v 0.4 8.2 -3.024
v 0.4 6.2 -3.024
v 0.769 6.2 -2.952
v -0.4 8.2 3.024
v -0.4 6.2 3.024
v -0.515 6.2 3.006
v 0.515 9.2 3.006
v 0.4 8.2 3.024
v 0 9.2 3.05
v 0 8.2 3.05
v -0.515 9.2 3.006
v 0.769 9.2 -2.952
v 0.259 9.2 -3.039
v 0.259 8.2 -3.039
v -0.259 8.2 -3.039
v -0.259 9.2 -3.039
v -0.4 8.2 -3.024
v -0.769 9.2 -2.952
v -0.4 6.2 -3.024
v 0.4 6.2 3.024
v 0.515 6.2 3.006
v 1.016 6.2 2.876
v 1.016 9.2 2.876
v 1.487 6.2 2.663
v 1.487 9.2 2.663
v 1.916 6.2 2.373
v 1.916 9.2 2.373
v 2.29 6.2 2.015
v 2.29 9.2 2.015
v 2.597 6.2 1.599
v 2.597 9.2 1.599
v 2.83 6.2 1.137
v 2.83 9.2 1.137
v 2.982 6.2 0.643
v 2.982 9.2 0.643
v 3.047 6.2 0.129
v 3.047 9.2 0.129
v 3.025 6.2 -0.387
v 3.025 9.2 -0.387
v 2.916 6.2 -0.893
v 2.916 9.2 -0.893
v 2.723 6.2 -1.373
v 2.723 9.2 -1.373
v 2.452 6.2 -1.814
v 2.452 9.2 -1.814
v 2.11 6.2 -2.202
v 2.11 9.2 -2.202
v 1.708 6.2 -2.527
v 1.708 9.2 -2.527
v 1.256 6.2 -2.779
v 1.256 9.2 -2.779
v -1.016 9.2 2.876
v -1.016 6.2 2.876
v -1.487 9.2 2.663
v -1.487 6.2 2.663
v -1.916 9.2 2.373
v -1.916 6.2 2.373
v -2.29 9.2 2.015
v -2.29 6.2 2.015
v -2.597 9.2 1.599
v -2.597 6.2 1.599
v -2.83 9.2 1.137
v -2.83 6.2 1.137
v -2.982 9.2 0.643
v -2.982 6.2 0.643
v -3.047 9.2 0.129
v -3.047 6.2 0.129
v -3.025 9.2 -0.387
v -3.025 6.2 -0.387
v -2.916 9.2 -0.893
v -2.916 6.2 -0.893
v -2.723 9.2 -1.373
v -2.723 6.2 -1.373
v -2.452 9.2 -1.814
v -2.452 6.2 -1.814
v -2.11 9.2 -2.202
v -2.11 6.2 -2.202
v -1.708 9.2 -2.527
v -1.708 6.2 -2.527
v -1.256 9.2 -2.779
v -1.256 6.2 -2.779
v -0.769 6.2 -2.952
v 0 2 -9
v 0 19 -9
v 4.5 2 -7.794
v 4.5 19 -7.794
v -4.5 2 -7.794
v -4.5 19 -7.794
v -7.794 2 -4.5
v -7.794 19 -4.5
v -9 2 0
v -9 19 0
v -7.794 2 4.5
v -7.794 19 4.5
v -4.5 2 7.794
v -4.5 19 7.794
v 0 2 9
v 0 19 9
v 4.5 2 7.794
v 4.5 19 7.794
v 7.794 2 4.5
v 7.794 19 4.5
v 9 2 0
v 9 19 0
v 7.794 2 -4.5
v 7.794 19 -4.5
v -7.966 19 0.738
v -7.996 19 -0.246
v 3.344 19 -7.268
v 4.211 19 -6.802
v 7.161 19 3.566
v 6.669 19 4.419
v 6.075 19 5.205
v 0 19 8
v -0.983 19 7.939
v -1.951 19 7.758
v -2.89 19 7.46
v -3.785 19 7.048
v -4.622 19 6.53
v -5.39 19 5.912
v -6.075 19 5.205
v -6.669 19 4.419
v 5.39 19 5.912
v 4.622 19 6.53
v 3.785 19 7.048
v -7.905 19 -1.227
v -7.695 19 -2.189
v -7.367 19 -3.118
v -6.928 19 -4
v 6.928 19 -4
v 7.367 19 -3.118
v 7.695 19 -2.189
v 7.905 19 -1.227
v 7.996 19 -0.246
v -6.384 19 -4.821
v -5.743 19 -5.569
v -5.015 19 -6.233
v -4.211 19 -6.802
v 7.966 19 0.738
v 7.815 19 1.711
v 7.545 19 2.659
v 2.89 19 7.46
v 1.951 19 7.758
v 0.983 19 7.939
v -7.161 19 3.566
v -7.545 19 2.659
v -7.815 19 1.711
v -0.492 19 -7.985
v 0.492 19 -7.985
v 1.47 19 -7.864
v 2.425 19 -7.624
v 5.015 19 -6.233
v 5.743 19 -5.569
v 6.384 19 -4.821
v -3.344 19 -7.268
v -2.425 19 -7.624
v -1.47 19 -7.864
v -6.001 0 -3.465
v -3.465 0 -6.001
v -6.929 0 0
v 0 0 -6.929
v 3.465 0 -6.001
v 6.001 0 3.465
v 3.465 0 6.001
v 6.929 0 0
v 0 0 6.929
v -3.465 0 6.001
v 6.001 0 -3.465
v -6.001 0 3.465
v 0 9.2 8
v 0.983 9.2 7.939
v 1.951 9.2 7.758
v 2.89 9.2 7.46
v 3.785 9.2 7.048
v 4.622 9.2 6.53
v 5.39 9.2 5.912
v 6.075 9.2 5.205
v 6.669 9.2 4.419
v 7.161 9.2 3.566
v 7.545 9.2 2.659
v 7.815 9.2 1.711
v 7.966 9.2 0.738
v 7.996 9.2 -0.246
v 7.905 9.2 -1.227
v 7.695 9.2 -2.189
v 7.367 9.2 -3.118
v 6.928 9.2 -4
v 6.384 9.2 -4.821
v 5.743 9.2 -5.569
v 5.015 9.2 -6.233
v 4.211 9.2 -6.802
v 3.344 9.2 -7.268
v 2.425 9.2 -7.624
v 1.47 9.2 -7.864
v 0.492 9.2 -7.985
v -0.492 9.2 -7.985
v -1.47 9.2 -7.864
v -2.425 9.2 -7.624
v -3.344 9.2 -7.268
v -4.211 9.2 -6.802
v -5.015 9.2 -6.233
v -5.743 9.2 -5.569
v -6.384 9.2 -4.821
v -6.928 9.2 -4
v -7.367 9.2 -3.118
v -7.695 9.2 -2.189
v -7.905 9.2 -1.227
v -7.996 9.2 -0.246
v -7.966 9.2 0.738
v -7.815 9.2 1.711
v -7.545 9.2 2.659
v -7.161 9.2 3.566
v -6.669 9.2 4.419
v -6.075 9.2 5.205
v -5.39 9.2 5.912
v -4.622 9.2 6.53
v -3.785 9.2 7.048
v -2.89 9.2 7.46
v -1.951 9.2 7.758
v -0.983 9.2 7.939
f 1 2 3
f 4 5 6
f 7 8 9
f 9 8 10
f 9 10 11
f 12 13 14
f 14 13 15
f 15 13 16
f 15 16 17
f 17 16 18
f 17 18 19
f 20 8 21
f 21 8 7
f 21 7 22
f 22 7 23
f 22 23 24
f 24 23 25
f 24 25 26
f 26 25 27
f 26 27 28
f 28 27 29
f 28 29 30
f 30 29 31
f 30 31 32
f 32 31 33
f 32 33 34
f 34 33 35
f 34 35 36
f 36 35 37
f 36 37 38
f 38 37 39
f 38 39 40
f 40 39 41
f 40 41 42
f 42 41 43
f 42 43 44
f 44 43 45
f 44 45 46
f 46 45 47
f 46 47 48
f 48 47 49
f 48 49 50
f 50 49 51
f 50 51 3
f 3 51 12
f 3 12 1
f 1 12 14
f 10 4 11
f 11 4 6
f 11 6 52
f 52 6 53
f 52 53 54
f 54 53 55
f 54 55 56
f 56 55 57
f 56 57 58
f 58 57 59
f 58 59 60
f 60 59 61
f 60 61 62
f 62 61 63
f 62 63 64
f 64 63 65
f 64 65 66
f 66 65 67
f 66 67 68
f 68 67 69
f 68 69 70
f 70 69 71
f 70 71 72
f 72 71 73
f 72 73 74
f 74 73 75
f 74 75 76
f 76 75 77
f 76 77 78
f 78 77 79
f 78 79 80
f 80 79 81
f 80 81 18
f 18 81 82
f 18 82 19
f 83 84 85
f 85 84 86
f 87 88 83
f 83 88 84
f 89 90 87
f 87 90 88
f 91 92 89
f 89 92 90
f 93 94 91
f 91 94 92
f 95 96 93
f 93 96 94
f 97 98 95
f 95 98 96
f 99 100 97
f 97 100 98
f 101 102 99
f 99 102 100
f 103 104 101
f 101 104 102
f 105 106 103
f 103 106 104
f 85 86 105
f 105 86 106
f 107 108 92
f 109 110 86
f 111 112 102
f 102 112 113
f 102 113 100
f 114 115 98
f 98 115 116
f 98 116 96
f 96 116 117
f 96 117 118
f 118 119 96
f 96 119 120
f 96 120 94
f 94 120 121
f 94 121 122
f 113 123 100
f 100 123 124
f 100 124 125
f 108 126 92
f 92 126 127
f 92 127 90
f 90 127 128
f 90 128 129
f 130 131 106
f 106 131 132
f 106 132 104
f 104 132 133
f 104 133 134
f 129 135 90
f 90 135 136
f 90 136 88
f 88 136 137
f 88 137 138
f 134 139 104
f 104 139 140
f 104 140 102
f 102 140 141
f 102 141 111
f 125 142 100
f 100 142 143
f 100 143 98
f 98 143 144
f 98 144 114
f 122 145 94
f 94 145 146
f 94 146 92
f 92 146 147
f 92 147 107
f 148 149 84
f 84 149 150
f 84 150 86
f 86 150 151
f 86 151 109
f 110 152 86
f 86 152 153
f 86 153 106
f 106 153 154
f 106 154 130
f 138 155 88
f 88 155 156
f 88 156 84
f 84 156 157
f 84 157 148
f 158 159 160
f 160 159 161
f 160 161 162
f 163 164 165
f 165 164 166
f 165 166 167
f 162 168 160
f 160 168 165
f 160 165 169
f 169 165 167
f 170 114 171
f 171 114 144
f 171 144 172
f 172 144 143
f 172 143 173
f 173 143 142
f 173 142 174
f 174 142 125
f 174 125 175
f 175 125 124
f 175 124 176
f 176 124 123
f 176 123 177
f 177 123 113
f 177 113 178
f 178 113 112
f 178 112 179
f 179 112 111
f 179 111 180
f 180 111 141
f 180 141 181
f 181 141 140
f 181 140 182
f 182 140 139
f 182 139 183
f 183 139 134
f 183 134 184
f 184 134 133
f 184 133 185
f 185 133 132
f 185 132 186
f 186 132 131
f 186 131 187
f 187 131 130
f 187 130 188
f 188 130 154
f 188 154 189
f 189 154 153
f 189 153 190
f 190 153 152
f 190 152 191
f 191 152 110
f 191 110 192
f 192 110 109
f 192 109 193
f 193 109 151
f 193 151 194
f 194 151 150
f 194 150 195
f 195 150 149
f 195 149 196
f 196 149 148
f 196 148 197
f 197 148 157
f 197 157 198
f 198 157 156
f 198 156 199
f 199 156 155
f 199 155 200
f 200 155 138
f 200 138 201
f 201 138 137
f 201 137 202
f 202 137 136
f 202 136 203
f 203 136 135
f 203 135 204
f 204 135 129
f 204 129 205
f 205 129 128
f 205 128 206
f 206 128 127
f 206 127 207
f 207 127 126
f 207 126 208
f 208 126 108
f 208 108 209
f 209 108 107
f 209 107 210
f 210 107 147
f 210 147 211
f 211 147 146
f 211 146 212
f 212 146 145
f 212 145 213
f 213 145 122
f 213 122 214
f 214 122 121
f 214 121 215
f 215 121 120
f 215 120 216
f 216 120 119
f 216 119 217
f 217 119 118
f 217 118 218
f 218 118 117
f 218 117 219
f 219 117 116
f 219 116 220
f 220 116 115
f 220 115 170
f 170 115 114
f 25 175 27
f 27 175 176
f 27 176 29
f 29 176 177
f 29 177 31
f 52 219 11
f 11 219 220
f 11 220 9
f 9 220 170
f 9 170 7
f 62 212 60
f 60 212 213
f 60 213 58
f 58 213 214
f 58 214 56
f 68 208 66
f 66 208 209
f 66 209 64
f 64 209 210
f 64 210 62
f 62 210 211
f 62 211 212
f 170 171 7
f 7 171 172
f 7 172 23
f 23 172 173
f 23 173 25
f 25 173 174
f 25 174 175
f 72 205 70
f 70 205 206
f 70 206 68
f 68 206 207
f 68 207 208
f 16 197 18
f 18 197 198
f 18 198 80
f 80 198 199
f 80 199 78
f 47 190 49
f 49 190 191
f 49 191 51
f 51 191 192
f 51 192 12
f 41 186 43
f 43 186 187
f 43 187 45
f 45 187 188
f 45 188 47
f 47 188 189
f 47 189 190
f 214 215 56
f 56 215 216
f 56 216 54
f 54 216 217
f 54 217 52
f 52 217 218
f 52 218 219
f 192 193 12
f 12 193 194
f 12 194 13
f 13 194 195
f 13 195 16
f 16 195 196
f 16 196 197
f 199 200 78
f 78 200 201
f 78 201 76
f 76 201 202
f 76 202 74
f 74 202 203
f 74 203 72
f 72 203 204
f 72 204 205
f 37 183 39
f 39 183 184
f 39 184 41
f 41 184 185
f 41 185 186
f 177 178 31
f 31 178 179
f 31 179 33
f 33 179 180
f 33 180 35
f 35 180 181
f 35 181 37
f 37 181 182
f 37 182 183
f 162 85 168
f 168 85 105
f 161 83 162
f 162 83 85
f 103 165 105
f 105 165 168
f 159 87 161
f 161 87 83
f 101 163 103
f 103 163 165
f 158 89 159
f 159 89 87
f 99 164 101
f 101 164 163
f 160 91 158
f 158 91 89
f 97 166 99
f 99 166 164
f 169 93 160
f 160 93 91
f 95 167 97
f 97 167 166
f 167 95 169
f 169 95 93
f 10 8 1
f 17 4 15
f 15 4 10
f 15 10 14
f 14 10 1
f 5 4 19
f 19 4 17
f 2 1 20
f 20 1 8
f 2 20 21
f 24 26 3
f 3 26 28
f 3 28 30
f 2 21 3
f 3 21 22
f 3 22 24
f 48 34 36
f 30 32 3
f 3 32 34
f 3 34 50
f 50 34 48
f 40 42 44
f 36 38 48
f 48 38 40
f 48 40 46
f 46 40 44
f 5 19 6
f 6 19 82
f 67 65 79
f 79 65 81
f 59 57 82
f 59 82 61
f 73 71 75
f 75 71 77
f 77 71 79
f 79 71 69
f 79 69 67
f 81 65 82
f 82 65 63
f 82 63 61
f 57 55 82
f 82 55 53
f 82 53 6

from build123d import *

# Parameters (mm, degrees)
BOSS_EXTRUDE1_DEPTH = 19
SKETCH2_R           = 8
CUT_EXTRUDE1_DEPTH  = 9.8
SKETCH3_R           = 3.05
CUT_EXTRUDE2_DEPTH  = 14
CHAMFER1_SIZE       = 2
SKETCH4_R           = 3.3
BOSS_EXTRUDE2_DEPTH = 3.2
BOSS_EXTRUDE3_DEPTH = 4
SKETCH7_R           = 3.05
BOSS_EXTRUDE4_DEPTH = 1
SKETCH8_R           = 3.05
BOSS_EXTRUDE5_DEPTH = 2


with BuildPart() as part:
    # Sketch1 → Boss-Extrude1 (new body)
    with BuildSketch(Plane(origin=(0, 0, 0), x_dir=(1, 0, 0), z_dir=(0, 1, 0))):
        Polygon((0, 9), (-4.5, 7.794228634), (-7.794228634, 4.5), (-9, 0), (-7.794228634, -4.5), (-4.5, -7.794228634), (0, -9), (4.5, -7.794228634), (7.794228634, -4.5), (9, 0), (7.794228634, 4.5), (4.5, 7.794228634), align=None)
    extrude(amount=BOSS_EXTRUDE1_DEPTH)

    # Sketch2 → Cut-Extrude1 (cut)
    with BuildSketch(Plane(origin=(0, 19, 0), x_dir=(1, 0, 0), z_dir=(0, 1, 0))):
        Circle(SKETCH2_R)
    extrude(amount=-CUT_EXTRUDE1_DEPTH, mode=Mode.SUBTRACT)

    # Sketch3 → Cut-Extrude2 (cut)
    with BuildSketch(Plane(origin=(0, 9.2, 0), x_dir=(1, 0, 0), z_dir=(0, 1, 0))):
        Circle(SKETCH3_R)
    extrude(amount=-CUT_EXTRUDE2_DEPTH, mode=Mode.SUBTRACT)

    # Chamfer1
    chamfer1_edges = [part.edges().sort_by_distance(p)[0] for p in [
        (6.147114317, 0, -6.147114317),
        (8.397114317, 0, -2.25),
        (8.397114317, 0, 2.25),
        (6.147114317, 0, 6.147114317),
        (2.25, 0, 8.397114317),
        (-2.25, 0, 8.397114317),
        (-6.147114317, 0, 6.147114317),
        (-8.397114317, 0, 2.25),
        (-8.397114317, 0, -2.25),
        (-6.147114317, 0, -6.147114317),
        (-2.25, 0, -8.397114317),
        (2.25, 0, -8.397114317),
    ]]
    chamfer(chamfer1_edges, length=CHAMFER1_SIZE)

    # Sketch4 → Boss-Extrude2 (add)
    with BuildSketch(Plane(origin=(0, 1, 0), x_dir=(1, 0, 0), z_dir=(0, 1, 0))):
        Circle(SKETCH4_R)
    extrude(amount=BOSS_EXTRUDE2_DEPTH)

    # Sketch6 → Boss-Extrude3 (add)
    with BuildSketch(Plane(origin=(0, 4.2, 0), x_dir=(1, 0, 0), z_dir=(0, 1, 0))):
        Polygon((-0.4, 0), (-0.4, 3.838549479), (0.4, 3.838549479), (0.4, -4.35363468), (-0.4, -4.35363468), align=None)
    extrude(amount=BOSS_EXTRUDE3_DEPTH)

    # Sketch7 → Boss-Extrude4 (add)
    with BuildSketch(Plane(origin=(0, 1, 0), x_dir=(-1, 0, 0), z_dir=(0, -1, 0))):
        Circle(SKETCH7_R)
    extrude(amount=BOSS_EXTRUDE4_DEPTH)

    # Sketch8 → Boss-Extrude5 (add)
    with BuildSketch(Plane(origin=(0, 4.2, 0), x_dir=(1, 0, 0), z_dir=(0, 1, 0))):
        Circle(SKETCH8_R)
    extrude(amount=BOSS_EXTRUDE5_DEPTH)


solid = part.part
